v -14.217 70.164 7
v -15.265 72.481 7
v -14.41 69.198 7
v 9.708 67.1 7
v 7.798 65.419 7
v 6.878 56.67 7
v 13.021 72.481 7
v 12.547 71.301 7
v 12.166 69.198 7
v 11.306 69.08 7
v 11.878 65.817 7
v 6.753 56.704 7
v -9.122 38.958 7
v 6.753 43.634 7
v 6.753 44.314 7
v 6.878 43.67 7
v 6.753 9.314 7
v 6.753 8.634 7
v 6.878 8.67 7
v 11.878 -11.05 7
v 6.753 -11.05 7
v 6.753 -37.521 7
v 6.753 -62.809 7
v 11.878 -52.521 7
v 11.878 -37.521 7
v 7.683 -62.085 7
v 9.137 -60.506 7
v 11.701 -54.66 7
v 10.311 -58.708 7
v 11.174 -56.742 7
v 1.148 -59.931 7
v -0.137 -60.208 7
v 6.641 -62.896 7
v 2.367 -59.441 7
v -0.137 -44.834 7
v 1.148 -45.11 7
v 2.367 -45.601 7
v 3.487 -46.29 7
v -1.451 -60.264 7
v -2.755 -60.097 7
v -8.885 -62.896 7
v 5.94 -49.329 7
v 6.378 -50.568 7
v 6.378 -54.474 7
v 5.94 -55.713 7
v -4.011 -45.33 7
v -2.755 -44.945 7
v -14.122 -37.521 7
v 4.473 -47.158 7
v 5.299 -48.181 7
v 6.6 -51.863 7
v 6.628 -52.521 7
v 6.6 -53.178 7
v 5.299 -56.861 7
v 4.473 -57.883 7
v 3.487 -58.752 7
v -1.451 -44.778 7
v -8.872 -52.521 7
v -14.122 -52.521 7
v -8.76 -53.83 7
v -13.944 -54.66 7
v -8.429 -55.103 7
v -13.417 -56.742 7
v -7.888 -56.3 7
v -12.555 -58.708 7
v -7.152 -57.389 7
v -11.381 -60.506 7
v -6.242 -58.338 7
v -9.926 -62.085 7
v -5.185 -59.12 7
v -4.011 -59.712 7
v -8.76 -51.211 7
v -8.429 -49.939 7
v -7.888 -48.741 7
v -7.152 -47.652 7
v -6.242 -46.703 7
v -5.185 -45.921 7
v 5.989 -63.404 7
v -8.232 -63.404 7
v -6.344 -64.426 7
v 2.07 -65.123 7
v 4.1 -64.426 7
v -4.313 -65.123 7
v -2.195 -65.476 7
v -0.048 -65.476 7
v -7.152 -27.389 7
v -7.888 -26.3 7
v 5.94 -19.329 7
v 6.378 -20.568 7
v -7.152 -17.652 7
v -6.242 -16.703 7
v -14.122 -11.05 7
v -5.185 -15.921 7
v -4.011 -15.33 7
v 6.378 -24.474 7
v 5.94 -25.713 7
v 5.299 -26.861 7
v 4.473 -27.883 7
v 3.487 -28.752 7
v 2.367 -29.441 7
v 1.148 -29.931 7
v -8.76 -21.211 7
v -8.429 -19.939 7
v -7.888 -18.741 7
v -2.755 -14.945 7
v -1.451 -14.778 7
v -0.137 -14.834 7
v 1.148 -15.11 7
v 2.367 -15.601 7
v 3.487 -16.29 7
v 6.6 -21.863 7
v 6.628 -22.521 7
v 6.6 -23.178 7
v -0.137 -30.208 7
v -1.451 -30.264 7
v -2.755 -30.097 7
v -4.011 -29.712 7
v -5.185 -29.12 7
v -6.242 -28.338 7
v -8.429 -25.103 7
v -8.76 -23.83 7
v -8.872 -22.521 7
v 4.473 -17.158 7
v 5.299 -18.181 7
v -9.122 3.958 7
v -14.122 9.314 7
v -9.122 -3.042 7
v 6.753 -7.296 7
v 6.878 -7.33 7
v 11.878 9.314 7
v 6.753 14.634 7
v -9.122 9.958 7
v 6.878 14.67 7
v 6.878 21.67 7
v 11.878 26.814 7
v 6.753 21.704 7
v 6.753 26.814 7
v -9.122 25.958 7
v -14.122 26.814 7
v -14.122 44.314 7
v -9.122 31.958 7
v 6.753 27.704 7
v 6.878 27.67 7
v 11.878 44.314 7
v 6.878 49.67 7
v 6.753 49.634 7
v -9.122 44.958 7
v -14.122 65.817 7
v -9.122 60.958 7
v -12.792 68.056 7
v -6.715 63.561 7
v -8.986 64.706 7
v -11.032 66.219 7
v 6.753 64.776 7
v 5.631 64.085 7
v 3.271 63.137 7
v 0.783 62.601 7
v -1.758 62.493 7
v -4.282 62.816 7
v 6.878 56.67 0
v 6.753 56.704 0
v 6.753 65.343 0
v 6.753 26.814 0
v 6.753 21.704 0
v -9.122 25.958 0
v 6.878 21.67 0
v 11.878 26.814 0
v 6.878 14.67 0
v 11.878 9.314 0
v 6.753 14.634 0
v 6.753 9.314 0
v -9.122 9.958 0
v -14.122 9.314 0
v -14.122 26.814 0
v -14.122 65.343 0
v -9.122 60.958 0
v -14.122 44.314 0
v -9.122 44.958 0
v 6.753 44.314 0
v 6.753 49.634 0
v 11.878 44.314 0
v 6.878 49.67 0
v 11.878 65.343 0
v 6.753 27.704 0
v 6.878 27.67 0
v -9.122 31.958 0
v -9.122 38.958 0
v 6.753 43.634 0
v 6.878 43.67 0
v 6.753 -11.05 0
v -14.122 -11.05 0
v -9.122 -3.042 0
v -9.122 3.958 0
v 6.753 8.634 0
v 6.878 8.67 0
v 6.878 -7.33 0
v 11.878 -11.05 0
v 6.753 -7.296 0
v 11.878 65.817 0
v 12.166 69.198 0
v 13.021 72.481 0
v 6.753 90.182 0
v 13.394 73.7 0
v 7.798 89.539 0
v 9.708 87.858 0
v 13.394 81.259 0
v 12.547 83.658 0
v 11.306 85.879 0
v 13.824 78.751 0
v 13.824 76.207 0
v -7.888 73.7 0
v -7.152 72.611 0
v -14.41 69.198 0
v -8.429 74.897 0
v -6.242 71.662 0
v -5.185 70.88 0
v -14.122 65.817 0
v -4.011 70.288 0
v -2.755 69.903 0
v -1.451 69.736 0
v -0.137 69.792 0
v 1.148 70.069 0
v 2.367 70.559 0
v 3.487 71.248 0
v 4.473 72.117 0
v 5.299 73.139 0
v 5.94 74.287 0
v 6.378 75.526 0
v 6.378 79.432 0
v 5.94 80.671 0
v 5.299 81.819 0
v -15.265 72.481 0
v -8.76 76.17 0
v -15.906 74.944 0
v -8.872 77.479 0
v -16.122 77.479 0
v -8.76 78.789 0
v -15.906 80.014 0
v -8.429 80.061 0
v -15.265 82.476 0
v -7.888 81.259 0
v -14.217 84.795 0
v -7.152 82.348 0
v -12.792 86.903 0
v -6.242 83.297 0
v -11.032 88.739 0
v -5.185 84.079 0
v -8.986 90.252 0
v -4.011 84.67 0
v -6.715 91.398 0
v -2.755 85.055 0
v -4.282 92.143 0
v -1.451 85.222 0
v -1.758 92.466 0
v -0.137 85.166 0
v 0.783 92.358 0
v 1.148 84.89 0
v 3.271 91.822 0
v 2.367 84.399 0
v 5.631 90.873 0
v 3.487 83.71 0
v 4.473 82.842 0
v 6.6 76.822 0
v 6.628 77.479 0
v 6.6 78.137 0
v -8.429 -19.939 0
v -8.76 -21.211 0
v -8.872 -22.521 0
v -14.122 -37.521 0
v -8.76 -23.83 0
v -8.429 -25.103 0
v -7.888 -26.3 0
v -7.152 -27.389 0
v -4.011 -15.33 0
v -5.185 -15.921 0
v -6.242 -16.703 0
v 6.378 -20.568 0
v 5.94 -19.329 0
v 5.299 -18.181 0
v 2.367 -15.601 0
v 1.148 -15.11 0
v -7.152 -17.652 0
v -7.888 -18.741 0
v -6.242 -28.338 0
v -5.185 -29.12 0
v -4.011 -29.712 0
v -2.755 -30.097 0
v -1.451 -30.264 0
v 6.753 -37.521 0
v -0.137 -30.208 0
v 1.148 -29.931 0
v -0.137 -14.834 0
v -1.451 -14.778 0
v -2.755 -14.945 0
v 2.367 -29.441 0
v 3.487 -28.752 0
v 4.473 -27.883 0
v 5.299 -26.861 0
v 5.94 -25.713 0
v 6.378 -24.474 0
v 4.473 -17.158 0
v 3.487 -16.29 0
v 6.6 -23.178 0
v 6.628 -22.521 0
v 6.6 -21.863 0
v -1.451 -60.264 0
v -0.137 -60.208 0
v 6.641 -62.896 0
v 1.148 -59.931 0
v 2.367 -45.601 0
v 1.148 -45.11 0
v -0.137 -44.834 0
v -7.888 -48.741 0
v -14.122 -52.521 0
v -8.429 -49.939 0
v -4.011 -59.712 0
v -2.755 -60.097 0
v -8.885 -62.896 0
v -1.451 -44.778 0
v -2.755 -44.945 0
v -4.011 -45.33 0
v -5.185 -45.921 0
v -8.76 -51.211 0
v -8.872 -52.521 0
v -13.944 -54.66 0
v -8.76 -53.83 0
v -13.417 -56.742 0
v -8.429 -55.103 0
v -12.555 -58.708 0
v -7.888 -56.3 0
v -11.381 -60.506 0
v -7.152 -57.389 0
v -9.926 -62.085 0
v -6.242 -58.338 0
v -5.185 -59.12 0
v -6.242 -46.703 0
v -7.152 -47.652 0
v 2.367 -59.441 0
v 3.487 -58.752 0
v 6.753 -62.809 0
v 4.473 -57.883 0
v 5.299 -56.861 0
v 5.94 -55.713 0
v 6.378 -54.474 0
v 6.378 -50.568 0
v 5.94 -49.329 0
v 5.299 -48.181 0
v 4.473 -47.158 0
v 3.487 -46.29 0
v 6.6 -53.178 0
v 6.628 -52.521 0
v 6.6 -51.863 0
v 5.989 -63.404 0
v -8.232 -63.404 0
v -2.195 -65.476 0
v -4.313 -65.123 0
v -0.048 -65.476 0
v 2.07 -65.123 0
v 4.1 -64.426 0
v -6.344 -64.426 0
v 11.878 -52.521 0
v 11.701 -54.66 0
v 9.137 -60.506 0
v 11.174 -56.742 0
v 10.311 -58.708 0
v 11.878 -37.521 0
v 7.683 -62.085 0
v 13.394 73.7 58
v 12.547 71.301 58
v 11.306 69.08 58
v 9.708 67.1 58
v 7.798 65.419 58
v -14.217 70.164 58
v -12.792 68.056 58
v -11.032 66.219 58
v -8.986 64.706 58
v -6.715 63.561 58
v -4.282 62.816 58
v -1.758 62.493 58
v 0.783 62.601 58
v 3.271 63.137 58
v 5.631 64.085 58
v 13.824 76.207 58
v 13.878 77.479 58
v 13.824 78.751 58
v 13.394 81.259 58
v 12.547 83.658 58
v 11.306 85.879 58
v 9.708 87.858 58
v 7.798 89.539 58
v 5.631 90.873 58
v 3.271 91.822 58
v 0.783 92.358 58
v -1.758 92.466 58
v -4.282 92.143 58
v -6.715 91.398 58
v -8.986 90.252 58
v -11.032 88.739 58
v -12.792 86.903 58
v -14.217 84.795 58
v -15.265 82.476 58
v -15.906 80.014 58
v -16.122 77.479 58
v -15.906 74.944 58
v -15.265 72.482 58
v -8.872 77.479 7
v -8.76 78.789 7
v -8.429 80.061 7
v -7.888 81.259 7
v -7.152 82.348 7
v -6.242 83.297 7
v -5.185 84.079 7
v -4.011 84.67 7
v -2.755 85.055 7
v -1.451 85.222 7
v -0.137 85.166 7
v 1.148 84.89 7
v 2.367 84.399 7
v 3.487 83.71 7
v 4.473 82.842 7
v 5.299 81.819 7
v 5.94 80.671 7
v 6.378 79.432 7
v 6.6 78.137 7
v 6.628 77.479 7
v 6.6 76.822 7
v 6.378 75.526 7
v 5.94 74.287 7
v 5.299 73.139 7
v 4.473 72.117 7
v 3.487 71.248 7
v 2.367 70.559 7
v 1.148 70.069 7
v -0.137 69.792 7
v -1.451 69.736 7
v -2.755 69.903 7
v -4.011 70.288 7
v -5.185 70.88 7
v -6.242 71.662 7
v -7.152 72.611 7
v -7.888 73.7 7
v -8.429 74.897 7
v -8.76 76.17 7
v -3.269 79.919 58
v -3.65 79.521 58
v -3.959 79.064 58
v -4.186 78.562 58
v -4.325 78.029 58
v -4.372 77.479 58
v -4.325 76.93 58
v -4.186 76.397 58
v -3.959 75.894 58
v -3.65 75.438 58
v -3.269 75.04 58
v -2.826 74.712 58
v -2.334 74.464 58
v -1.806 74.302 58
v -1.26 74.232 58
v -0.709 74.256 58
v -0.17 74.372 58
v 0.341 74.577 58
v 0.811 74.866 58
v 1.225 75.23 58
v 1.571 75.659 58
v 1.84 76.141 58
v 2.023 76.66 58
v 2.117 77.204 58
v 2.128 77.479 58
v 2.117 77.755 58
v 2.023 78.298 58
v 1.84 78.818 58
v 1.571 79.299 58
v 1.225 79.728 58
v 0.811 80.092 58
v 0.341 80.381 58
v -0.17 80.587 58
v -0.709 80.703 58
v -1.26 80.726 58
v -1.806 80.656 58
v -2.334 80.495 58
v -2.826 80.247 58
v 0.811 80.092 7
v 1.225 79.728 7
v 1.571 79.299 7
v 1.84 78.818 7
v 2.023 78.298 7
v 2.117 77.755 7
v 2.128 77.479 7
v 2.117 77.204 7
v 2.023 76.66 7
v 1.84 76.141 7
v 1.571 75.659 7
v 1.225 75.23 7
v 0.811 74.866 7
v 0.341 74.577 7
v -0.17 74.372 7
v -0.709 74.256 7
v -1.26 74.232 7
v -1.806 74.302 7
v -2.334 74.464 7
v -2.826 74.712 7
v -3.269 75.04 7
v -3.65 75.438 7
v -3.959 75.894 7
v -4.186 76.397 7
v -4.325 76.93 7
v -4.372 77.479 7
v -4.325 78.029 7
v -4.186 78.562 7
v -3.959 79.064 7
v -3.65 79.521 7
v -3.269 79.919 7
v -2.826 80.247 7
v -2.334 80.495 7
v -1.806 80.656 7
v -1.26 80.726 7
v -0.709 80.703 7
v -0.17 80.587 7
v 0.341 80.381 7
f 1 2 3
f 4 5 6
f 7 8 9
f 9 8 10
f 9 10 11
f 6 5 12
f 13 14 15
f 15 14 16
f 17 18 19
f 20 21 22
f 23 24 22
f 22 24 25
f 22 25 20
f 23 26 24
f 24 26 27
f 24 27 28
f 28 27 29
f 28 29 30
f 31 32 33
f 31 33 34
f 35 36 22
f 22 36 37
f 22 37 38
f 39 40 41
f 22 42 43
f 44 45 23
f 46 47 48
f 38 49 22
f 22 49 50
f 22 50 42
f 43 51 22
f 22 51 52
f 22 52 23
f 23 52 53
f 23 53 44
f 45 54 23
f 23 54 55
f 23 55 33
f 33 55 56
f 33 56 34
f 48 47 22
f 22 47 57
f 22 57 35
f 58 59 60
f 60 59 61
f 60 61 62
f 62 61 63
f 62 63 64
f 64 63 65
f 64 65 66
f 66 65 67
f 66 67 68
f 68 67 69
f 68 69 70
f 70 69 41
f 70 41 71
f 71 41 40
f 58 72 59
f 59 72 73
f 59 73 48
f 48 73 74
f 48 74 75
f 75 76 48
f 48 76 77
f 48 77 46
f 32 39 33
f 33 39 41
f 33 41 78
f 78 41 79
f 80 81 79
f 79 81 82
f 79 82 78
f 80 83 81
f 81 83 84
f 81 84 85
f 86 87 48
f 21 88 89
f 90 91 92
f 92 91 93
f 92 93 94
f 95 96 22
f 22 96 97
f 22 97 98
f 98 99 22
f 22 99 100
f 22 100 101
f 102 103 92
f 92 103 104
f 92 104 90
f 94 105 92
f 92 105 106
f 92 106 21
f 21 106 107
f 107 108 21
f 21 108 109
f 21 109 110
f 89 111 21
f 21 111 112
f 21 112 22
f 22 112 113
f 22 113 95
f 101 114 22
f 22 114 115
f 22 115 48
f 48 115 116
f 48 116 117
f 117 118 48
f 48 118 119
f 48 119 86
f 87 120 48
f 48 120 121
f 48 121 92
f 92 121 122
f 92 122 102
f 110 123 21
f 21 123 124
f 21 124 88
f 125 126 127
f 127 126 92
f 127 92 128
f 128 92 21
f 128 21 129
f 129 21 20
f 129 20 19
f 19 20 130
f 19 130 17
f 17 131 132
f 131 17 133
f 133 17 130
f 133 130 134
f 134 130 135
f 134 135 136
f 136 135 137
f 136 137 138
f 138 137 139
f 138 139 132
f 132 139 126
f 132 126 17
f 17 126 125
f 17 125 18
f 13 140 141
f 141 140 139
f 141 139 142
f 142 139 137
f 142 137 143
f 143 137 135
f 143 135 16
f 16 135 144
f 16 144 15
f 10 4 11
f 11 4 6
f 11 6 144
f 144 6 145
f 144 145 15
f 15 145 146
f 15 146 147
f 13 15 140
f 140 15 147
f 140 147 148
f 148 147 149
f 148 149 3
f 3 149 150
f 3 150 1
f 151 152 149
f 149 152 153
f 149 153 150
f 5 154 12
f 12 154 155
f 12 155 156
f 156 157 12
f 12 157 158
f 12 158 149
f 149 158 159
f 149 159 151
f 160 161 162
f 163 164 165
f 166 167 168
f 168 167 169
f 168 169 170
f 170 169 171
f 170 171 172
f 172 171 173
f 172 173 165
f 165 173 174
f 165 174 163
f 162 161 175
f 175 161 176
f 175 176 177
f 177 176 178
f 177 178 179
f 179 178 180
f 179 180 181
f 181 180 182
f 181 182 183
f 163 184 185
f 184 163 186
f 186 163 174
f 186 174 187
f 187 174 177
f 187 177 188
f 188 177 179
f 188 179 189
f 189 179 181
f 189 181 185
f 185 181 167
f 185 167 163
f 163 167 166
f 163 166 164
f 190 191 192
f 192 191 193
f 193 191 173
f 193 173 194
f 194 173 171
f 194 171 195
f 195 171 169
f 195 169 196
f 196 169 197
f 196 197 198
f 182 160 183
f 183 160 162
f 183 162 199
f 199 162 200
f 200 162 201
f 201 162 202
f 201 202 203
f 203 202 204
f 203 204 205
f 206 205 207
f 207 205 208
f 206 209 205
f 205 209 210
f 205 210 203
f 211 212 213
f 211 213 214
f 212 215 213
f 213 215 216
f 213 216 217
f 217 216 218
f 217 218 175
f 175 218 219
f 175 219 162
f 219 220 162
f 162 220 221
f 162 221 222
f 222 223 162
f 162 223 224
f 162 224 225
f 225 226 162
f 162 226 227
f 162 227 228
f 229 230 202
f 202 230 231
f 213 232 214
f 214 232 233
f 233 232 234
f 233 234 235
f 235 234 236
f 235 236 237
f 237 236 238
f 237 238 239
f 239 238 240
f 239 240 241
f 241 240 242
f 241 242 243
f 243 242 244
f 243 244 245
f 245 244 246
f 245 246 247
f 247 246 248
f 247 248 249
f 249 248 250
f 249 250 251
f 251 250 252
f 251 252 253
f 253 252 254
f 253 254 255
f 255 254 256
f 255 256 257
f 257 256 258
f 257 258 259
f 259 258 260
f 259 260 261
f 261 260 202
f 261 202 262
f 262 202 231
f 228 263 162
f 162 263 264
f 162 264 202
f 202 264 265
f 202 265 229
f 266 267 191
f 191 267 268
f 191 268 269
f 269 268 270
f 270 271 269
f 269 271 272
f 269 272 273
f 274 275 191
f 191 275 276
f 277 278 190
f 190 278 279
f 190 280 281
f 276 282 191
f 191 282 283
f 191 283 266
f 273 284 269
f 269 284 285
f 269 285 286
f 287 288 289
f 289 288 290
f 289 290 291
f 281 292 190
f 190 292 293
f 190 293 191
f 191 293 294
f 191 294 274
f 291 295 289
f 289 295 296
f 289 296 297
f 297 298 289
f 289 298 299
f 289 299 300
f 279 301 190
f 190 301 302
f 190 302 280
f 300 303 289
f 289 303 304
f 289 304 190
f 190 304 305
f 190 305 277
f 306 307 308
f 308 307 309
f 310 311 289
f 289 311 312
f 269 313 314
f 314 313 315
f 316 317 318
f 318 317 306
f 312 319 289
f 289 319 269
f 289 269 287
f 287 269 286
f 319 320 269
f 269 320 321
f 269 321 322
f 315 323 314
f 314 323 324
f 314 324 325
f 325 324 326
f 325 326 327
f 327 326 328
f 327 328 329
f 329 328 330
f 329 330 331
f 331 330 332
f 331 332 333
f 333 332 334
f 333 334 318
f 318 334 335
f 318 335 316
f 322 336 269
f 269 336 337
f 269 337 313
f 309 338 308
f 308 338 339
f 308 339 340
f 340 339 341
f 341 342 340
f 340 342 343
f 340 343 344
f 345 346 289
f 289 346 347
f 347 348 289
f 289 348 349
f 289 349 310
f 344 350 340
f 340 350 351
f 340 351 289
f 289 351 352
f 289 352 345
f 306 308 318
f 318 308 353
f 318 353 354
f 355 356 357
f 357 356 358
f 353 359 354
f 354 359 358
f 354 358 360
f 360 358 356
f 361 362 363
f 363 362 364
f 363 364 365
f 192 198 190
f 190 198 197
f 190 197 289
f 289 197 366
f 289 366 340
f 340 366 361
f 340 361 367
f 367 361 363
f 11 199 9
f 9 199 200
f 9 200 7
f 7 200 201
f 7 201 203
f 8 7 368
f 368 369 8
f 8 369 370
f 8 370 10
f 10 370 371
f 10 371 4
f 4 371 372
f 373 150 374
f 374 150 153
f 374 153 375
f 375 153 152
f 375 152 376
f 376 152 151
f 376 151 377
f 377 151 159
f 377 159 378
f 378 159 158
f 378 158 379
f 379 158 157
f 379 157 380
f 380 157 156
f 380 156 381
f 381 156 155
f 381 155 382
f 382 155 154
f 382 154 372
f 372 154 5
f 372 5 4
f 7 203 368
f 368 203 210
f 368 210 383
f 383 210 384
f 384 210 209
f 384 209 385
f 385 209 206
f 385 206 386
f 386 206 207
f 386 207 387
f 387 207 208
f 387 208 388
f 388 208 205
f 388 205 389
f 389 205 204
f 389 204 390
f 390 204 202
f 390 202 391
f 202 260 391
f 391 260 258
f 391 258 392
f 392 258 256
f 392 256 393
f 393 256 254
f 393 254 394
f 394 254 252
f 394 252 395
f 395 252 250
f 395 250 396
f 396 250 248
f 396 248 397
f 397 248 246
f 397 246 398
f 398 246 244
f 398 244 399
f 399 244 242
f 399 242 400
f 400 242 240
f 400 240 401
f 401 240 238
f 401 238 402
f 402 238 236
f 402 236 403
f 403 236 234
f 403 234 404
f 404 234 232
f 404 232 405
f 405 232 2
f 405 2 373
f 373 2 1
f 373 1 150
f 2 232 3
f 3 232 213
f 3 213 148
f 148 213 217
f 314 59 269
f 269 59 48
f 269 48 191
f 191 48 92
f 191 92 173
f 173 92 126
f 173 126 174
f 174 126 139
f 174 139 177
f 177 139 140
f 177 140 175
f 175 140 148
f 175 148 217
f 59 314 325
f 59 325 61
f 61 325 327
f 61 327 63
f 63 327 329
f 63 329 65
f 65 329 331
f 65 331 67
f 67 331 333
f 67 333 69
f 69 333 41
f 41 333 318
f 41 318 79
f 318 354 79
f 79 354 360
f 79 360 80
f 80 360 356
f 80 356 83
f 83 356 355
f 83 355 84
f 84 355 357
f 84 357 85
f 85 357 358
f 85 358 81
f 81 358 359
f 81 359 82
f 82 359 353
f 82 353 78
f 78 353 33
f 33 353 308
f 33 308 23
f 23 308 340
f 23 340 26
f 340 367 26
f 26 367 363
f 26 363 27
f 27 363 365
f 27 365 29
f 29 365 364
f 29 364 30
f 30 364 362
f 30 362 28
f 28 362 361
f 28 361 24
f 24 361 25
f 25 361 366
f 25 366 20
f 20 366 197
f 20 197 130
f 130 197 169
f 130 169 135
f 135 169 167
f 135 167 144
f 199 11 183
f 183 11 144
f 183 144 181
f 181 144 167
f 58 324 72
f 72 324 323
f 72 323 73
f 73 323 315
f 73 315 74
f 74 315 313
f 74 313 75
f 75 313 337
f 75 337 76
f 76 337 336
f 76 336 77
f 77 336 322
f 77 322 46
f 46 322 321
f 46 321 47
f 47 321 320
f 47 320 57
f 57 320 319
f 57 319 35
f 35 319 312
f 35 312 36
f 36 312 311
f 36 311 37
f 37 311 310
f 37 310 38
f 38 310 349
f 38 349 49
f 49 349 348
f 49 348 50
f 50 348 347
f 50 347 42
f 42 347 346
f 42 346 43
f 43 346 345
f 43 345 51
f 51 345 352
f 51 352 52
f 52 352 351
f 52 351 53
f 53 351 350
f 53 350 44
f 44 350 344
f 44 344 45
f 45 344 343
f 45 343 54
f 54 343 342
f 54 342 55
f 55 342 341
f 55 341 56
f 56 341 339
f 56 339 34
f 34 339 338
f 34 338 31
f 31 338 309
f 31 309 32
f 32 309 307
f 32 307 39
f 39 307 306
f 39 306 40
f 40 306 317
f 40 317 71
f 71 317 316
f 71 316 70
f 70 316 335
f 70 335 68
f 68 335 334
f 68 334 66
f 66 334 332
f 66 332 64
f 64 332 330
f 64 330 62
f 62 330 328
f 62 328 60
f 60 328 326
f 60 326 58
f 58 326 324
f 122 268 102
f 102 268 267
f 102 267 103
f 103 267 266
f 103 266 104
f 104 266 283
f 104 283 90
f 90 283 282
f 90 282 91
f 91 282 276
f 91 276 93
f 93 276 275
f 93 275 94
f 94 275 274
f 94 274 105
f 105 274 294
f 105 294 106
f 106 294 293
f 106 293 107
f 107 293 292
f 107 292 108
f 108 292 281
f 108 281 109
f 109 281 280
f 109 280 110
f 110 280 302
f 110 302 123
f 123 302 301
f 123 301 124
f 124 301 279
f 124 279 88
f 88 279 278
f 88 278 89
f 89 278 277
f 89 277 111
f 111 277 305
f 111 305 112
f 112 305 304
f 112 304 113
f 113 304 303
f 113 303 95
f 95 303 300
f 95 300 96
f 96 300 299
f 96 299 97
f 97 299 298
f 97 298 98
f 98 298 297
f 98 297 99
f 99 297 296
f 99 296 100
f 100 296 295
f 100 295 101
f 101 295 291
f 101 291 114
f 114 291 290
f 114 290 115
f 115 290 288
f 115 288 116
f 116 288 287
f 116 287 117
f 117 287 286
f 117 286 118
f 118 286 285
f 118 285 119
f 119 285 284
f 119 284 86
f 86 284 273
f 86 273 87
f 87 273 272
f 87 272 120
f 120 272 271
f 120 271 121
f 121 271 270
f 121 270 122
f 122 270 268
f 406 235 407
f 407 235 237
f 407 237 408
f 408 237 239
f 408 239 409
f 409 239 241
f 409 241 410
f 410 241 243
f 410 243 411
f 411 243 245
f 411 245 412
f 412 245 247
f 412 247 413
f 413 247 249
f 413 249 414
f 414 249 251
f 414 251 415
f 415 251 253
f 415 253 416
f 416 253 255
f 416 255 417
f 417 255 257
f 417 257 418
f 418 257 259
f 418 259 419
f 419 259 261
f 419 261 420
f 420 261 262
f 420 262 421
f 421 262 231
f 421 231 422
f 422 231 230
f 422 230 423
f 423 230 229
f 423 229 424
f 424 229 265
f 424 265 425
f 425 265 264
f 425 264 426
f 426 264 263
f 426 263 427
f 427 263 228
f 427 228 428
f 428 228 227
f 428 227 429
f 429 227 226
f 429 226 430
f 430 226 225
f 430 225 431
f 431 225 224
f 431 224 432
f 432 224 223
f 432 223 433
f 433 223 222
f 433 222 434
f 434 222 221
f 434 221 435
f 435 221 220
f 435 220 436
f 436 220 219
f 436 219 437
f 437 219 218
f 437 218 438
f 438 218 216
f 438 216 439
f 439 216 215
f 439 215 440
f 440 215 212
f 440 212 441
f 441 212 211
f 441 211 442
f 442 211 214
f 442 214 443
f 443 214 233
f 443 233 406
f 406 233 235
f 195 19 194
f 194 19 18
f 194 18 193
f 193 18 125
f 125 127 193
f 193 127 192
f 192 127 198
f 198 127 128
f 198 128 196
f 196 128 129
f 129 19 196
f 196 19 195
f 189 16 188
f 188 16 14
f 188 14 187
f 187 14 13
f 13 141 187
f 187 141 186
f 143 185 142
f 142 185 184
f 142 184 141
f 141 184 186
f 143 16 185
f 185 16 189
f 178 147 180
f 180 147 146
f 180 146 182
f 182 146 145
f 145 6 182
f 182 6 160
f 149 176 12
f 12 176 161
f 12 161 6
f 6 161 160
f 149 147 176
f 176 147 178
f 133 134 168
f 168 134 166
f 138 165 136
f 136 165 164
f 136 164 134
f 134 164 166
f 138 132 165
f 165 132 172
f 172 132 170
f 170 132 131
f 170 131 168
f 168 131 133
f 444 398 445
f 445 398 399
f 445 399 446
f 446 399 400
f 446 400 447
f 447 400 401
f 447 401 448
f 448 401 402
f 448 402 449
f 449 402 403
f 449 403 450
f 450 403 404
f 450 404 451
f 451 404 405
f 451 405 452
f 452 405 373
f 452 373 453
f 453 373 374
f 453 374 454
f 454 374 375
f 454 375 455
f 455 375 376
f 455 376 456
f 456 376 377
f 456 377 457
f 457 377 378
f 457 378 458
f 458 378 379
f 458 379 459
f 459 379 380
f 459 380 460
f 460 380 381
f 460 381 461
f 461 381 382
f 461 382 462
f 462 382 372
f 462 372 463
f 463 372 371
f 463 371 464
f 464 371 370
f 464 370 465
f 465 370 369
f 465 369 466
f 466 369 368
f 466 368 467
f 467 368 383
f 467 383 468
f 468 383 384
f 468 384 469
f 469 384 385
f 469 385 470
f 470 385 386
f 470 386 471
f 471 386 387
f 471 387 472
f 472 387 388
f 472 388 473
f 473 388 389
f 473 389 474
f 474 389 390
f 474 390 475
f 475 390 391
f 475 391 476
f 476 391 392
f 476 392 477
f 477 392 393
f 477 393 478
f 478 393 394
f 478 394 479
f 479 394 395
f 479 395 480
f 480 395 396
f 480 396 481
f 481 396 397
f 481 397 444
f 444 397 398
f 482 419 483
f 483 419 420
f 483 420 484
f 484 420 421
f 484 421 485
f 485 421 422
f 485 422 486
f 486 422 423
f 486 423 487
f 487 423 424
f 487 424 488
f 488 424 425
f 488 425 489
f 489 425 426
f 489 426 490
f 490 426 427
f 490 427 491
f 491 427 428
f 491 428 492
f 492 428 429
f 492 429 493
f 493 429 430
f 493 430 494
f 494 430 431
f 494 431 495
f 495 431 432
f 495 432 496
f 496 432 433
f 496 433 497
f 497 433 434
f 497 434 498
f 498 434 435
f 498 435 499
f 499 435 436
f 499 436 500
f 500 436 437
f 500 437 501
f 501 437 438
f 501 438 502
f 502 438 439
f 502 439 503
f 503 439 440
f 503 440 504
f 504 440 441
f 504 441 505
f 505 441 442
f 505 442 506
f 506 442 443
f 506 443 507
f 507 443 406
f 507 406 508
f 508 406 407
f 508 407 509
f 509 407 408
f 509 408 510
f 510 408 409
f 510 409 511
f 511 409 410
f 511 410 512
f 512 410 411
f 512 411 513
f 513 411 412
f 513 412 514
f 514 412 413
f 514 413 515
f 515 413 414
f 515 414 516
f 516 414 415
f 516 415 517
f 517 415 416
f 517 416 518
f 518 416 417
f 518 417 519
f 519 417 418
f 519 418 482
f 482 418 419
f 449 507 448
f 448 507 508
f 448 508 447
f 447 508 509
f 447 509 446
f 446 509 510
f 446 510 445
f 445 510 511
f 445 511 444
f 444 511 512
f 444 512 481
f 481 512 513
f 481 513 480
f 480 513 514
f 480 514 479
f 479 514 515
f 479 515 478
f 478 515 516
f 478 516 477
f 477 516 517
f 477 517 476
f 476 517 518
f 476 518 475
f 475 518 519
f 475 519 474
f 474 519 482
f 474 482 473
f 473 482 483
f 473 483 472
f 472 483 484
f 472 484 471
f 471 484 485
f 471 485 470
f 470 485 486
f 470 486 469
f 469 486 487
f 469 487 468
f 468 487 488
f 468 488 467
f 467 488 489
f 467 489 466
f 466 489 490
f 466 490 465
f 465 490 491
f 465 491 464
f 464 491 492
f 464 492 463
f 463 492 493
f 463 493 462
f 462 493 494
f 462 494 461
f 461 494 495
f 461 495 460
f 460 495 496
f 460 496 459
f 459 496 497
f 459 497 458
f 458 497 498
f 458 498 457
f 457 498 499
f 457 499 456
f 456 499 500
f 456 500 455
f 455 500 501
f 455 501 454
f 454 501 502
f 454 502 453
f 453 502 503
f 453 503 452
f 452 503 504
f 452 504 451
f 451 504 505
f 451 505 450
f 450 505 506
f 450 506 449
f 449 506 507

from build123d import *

# Parameters (mm, degrees)
SKETCH1_R           = 7.75
BOSS_EXTRUDE1_DEPTH = 7
SKETCH2_R           = 15
SKETCH2_R_2         = 3.25
BOSS_EXTRUDE2_DEPTH = 51


with BuildPart() as part:
    # Sketch1 → Boss-Extrude1 (new body)
    with BuildSketch(Plane.XY):
        with BuildLine():
            Line((-14.121781939, 65.817369233), (-14.121781939, -52.520726978))
            ThreePointArc((-14.121781939, -52.520726978), (-1.121781939, -65.520726978), (11.878218061, -52.520726978))
            Line((11.878218061, -52.520726978), (11.878218061, 65.817369233))
            ThreePointArc((11.878218061, 65.817369233), (12.166002849, 69.197986251), (13.021075204, 72.481314255))
            ThreePointArc((13.021075204, 72.481314255), (-1.121781939, 92.479273022), (-15.264639082, 72.481314255))
            ThreePointArc((-15.264639082, 72.481314255), (-14.409566727, 69.197986251), (-14.121781939, 65.817369233))
        make_face()
        with Locations((-1.121781939, -52.520726978)):
            Circle(SKETCH1_R, mode=Mode.SUBTRACT)
        with Locations((-1.121781939, -22.520726978)):
            Circle(SKETCH1_R, mode=Mode.SUBTRACT)
        with Locations((-1.121781939, 77.479273022)):
            Circle(SKETCH1_R, mode=Mode.SUBTRACT)
        Polygon((-9.121781939, 3.957653989), (-9.121781939, -3.042346011), (6.878218061, -7.32953309), (6.878218061, 8.67046691), align=None, mode=Mode.SUBTRACT)
        Polygon((-9.121781939, 31.957653989), (6.878218061, 27.67046691), (6.878218061, 43.67046691), (-9.121781939, 38.957653989), align=None, mode=Mode.SUBTRACT)
        Polygon((6.878218061, 56.67046691), (-9.121781939, 60.957653989), (-9.121781939, 44.957653989), (6.878218061, 49.67046691), align=None, mode=Mode.SUBTRACT)
        Polygon((-9.121781939, 9.957653989), (6.878218061, 14.67046691), (6.878218061, 21.67046691), (-9.121781939, 25.957653989), align=None, mode=Mode.SUBTRACT)
    extrude(amount=BOSS_EXTRUDE1_DEPTH)

    # Sketch2 → Boss-Extrude2 (add)
    with BuildSketch(Plane.XY.offset(7)):
        with Locations(Location((-1.121781939, 77.479273022, 0), (0, 0, 199.462950946))):
            Circle(SKETCH2_R)
        with Locations((-1.121781939, 77.479273022)):
            Circle(SKETCH2_R_2, mode=Mode.SUBTRACT)
    extrude(amount=BOSS_EXTRUDE2_DEPTH)


solid = part.part
